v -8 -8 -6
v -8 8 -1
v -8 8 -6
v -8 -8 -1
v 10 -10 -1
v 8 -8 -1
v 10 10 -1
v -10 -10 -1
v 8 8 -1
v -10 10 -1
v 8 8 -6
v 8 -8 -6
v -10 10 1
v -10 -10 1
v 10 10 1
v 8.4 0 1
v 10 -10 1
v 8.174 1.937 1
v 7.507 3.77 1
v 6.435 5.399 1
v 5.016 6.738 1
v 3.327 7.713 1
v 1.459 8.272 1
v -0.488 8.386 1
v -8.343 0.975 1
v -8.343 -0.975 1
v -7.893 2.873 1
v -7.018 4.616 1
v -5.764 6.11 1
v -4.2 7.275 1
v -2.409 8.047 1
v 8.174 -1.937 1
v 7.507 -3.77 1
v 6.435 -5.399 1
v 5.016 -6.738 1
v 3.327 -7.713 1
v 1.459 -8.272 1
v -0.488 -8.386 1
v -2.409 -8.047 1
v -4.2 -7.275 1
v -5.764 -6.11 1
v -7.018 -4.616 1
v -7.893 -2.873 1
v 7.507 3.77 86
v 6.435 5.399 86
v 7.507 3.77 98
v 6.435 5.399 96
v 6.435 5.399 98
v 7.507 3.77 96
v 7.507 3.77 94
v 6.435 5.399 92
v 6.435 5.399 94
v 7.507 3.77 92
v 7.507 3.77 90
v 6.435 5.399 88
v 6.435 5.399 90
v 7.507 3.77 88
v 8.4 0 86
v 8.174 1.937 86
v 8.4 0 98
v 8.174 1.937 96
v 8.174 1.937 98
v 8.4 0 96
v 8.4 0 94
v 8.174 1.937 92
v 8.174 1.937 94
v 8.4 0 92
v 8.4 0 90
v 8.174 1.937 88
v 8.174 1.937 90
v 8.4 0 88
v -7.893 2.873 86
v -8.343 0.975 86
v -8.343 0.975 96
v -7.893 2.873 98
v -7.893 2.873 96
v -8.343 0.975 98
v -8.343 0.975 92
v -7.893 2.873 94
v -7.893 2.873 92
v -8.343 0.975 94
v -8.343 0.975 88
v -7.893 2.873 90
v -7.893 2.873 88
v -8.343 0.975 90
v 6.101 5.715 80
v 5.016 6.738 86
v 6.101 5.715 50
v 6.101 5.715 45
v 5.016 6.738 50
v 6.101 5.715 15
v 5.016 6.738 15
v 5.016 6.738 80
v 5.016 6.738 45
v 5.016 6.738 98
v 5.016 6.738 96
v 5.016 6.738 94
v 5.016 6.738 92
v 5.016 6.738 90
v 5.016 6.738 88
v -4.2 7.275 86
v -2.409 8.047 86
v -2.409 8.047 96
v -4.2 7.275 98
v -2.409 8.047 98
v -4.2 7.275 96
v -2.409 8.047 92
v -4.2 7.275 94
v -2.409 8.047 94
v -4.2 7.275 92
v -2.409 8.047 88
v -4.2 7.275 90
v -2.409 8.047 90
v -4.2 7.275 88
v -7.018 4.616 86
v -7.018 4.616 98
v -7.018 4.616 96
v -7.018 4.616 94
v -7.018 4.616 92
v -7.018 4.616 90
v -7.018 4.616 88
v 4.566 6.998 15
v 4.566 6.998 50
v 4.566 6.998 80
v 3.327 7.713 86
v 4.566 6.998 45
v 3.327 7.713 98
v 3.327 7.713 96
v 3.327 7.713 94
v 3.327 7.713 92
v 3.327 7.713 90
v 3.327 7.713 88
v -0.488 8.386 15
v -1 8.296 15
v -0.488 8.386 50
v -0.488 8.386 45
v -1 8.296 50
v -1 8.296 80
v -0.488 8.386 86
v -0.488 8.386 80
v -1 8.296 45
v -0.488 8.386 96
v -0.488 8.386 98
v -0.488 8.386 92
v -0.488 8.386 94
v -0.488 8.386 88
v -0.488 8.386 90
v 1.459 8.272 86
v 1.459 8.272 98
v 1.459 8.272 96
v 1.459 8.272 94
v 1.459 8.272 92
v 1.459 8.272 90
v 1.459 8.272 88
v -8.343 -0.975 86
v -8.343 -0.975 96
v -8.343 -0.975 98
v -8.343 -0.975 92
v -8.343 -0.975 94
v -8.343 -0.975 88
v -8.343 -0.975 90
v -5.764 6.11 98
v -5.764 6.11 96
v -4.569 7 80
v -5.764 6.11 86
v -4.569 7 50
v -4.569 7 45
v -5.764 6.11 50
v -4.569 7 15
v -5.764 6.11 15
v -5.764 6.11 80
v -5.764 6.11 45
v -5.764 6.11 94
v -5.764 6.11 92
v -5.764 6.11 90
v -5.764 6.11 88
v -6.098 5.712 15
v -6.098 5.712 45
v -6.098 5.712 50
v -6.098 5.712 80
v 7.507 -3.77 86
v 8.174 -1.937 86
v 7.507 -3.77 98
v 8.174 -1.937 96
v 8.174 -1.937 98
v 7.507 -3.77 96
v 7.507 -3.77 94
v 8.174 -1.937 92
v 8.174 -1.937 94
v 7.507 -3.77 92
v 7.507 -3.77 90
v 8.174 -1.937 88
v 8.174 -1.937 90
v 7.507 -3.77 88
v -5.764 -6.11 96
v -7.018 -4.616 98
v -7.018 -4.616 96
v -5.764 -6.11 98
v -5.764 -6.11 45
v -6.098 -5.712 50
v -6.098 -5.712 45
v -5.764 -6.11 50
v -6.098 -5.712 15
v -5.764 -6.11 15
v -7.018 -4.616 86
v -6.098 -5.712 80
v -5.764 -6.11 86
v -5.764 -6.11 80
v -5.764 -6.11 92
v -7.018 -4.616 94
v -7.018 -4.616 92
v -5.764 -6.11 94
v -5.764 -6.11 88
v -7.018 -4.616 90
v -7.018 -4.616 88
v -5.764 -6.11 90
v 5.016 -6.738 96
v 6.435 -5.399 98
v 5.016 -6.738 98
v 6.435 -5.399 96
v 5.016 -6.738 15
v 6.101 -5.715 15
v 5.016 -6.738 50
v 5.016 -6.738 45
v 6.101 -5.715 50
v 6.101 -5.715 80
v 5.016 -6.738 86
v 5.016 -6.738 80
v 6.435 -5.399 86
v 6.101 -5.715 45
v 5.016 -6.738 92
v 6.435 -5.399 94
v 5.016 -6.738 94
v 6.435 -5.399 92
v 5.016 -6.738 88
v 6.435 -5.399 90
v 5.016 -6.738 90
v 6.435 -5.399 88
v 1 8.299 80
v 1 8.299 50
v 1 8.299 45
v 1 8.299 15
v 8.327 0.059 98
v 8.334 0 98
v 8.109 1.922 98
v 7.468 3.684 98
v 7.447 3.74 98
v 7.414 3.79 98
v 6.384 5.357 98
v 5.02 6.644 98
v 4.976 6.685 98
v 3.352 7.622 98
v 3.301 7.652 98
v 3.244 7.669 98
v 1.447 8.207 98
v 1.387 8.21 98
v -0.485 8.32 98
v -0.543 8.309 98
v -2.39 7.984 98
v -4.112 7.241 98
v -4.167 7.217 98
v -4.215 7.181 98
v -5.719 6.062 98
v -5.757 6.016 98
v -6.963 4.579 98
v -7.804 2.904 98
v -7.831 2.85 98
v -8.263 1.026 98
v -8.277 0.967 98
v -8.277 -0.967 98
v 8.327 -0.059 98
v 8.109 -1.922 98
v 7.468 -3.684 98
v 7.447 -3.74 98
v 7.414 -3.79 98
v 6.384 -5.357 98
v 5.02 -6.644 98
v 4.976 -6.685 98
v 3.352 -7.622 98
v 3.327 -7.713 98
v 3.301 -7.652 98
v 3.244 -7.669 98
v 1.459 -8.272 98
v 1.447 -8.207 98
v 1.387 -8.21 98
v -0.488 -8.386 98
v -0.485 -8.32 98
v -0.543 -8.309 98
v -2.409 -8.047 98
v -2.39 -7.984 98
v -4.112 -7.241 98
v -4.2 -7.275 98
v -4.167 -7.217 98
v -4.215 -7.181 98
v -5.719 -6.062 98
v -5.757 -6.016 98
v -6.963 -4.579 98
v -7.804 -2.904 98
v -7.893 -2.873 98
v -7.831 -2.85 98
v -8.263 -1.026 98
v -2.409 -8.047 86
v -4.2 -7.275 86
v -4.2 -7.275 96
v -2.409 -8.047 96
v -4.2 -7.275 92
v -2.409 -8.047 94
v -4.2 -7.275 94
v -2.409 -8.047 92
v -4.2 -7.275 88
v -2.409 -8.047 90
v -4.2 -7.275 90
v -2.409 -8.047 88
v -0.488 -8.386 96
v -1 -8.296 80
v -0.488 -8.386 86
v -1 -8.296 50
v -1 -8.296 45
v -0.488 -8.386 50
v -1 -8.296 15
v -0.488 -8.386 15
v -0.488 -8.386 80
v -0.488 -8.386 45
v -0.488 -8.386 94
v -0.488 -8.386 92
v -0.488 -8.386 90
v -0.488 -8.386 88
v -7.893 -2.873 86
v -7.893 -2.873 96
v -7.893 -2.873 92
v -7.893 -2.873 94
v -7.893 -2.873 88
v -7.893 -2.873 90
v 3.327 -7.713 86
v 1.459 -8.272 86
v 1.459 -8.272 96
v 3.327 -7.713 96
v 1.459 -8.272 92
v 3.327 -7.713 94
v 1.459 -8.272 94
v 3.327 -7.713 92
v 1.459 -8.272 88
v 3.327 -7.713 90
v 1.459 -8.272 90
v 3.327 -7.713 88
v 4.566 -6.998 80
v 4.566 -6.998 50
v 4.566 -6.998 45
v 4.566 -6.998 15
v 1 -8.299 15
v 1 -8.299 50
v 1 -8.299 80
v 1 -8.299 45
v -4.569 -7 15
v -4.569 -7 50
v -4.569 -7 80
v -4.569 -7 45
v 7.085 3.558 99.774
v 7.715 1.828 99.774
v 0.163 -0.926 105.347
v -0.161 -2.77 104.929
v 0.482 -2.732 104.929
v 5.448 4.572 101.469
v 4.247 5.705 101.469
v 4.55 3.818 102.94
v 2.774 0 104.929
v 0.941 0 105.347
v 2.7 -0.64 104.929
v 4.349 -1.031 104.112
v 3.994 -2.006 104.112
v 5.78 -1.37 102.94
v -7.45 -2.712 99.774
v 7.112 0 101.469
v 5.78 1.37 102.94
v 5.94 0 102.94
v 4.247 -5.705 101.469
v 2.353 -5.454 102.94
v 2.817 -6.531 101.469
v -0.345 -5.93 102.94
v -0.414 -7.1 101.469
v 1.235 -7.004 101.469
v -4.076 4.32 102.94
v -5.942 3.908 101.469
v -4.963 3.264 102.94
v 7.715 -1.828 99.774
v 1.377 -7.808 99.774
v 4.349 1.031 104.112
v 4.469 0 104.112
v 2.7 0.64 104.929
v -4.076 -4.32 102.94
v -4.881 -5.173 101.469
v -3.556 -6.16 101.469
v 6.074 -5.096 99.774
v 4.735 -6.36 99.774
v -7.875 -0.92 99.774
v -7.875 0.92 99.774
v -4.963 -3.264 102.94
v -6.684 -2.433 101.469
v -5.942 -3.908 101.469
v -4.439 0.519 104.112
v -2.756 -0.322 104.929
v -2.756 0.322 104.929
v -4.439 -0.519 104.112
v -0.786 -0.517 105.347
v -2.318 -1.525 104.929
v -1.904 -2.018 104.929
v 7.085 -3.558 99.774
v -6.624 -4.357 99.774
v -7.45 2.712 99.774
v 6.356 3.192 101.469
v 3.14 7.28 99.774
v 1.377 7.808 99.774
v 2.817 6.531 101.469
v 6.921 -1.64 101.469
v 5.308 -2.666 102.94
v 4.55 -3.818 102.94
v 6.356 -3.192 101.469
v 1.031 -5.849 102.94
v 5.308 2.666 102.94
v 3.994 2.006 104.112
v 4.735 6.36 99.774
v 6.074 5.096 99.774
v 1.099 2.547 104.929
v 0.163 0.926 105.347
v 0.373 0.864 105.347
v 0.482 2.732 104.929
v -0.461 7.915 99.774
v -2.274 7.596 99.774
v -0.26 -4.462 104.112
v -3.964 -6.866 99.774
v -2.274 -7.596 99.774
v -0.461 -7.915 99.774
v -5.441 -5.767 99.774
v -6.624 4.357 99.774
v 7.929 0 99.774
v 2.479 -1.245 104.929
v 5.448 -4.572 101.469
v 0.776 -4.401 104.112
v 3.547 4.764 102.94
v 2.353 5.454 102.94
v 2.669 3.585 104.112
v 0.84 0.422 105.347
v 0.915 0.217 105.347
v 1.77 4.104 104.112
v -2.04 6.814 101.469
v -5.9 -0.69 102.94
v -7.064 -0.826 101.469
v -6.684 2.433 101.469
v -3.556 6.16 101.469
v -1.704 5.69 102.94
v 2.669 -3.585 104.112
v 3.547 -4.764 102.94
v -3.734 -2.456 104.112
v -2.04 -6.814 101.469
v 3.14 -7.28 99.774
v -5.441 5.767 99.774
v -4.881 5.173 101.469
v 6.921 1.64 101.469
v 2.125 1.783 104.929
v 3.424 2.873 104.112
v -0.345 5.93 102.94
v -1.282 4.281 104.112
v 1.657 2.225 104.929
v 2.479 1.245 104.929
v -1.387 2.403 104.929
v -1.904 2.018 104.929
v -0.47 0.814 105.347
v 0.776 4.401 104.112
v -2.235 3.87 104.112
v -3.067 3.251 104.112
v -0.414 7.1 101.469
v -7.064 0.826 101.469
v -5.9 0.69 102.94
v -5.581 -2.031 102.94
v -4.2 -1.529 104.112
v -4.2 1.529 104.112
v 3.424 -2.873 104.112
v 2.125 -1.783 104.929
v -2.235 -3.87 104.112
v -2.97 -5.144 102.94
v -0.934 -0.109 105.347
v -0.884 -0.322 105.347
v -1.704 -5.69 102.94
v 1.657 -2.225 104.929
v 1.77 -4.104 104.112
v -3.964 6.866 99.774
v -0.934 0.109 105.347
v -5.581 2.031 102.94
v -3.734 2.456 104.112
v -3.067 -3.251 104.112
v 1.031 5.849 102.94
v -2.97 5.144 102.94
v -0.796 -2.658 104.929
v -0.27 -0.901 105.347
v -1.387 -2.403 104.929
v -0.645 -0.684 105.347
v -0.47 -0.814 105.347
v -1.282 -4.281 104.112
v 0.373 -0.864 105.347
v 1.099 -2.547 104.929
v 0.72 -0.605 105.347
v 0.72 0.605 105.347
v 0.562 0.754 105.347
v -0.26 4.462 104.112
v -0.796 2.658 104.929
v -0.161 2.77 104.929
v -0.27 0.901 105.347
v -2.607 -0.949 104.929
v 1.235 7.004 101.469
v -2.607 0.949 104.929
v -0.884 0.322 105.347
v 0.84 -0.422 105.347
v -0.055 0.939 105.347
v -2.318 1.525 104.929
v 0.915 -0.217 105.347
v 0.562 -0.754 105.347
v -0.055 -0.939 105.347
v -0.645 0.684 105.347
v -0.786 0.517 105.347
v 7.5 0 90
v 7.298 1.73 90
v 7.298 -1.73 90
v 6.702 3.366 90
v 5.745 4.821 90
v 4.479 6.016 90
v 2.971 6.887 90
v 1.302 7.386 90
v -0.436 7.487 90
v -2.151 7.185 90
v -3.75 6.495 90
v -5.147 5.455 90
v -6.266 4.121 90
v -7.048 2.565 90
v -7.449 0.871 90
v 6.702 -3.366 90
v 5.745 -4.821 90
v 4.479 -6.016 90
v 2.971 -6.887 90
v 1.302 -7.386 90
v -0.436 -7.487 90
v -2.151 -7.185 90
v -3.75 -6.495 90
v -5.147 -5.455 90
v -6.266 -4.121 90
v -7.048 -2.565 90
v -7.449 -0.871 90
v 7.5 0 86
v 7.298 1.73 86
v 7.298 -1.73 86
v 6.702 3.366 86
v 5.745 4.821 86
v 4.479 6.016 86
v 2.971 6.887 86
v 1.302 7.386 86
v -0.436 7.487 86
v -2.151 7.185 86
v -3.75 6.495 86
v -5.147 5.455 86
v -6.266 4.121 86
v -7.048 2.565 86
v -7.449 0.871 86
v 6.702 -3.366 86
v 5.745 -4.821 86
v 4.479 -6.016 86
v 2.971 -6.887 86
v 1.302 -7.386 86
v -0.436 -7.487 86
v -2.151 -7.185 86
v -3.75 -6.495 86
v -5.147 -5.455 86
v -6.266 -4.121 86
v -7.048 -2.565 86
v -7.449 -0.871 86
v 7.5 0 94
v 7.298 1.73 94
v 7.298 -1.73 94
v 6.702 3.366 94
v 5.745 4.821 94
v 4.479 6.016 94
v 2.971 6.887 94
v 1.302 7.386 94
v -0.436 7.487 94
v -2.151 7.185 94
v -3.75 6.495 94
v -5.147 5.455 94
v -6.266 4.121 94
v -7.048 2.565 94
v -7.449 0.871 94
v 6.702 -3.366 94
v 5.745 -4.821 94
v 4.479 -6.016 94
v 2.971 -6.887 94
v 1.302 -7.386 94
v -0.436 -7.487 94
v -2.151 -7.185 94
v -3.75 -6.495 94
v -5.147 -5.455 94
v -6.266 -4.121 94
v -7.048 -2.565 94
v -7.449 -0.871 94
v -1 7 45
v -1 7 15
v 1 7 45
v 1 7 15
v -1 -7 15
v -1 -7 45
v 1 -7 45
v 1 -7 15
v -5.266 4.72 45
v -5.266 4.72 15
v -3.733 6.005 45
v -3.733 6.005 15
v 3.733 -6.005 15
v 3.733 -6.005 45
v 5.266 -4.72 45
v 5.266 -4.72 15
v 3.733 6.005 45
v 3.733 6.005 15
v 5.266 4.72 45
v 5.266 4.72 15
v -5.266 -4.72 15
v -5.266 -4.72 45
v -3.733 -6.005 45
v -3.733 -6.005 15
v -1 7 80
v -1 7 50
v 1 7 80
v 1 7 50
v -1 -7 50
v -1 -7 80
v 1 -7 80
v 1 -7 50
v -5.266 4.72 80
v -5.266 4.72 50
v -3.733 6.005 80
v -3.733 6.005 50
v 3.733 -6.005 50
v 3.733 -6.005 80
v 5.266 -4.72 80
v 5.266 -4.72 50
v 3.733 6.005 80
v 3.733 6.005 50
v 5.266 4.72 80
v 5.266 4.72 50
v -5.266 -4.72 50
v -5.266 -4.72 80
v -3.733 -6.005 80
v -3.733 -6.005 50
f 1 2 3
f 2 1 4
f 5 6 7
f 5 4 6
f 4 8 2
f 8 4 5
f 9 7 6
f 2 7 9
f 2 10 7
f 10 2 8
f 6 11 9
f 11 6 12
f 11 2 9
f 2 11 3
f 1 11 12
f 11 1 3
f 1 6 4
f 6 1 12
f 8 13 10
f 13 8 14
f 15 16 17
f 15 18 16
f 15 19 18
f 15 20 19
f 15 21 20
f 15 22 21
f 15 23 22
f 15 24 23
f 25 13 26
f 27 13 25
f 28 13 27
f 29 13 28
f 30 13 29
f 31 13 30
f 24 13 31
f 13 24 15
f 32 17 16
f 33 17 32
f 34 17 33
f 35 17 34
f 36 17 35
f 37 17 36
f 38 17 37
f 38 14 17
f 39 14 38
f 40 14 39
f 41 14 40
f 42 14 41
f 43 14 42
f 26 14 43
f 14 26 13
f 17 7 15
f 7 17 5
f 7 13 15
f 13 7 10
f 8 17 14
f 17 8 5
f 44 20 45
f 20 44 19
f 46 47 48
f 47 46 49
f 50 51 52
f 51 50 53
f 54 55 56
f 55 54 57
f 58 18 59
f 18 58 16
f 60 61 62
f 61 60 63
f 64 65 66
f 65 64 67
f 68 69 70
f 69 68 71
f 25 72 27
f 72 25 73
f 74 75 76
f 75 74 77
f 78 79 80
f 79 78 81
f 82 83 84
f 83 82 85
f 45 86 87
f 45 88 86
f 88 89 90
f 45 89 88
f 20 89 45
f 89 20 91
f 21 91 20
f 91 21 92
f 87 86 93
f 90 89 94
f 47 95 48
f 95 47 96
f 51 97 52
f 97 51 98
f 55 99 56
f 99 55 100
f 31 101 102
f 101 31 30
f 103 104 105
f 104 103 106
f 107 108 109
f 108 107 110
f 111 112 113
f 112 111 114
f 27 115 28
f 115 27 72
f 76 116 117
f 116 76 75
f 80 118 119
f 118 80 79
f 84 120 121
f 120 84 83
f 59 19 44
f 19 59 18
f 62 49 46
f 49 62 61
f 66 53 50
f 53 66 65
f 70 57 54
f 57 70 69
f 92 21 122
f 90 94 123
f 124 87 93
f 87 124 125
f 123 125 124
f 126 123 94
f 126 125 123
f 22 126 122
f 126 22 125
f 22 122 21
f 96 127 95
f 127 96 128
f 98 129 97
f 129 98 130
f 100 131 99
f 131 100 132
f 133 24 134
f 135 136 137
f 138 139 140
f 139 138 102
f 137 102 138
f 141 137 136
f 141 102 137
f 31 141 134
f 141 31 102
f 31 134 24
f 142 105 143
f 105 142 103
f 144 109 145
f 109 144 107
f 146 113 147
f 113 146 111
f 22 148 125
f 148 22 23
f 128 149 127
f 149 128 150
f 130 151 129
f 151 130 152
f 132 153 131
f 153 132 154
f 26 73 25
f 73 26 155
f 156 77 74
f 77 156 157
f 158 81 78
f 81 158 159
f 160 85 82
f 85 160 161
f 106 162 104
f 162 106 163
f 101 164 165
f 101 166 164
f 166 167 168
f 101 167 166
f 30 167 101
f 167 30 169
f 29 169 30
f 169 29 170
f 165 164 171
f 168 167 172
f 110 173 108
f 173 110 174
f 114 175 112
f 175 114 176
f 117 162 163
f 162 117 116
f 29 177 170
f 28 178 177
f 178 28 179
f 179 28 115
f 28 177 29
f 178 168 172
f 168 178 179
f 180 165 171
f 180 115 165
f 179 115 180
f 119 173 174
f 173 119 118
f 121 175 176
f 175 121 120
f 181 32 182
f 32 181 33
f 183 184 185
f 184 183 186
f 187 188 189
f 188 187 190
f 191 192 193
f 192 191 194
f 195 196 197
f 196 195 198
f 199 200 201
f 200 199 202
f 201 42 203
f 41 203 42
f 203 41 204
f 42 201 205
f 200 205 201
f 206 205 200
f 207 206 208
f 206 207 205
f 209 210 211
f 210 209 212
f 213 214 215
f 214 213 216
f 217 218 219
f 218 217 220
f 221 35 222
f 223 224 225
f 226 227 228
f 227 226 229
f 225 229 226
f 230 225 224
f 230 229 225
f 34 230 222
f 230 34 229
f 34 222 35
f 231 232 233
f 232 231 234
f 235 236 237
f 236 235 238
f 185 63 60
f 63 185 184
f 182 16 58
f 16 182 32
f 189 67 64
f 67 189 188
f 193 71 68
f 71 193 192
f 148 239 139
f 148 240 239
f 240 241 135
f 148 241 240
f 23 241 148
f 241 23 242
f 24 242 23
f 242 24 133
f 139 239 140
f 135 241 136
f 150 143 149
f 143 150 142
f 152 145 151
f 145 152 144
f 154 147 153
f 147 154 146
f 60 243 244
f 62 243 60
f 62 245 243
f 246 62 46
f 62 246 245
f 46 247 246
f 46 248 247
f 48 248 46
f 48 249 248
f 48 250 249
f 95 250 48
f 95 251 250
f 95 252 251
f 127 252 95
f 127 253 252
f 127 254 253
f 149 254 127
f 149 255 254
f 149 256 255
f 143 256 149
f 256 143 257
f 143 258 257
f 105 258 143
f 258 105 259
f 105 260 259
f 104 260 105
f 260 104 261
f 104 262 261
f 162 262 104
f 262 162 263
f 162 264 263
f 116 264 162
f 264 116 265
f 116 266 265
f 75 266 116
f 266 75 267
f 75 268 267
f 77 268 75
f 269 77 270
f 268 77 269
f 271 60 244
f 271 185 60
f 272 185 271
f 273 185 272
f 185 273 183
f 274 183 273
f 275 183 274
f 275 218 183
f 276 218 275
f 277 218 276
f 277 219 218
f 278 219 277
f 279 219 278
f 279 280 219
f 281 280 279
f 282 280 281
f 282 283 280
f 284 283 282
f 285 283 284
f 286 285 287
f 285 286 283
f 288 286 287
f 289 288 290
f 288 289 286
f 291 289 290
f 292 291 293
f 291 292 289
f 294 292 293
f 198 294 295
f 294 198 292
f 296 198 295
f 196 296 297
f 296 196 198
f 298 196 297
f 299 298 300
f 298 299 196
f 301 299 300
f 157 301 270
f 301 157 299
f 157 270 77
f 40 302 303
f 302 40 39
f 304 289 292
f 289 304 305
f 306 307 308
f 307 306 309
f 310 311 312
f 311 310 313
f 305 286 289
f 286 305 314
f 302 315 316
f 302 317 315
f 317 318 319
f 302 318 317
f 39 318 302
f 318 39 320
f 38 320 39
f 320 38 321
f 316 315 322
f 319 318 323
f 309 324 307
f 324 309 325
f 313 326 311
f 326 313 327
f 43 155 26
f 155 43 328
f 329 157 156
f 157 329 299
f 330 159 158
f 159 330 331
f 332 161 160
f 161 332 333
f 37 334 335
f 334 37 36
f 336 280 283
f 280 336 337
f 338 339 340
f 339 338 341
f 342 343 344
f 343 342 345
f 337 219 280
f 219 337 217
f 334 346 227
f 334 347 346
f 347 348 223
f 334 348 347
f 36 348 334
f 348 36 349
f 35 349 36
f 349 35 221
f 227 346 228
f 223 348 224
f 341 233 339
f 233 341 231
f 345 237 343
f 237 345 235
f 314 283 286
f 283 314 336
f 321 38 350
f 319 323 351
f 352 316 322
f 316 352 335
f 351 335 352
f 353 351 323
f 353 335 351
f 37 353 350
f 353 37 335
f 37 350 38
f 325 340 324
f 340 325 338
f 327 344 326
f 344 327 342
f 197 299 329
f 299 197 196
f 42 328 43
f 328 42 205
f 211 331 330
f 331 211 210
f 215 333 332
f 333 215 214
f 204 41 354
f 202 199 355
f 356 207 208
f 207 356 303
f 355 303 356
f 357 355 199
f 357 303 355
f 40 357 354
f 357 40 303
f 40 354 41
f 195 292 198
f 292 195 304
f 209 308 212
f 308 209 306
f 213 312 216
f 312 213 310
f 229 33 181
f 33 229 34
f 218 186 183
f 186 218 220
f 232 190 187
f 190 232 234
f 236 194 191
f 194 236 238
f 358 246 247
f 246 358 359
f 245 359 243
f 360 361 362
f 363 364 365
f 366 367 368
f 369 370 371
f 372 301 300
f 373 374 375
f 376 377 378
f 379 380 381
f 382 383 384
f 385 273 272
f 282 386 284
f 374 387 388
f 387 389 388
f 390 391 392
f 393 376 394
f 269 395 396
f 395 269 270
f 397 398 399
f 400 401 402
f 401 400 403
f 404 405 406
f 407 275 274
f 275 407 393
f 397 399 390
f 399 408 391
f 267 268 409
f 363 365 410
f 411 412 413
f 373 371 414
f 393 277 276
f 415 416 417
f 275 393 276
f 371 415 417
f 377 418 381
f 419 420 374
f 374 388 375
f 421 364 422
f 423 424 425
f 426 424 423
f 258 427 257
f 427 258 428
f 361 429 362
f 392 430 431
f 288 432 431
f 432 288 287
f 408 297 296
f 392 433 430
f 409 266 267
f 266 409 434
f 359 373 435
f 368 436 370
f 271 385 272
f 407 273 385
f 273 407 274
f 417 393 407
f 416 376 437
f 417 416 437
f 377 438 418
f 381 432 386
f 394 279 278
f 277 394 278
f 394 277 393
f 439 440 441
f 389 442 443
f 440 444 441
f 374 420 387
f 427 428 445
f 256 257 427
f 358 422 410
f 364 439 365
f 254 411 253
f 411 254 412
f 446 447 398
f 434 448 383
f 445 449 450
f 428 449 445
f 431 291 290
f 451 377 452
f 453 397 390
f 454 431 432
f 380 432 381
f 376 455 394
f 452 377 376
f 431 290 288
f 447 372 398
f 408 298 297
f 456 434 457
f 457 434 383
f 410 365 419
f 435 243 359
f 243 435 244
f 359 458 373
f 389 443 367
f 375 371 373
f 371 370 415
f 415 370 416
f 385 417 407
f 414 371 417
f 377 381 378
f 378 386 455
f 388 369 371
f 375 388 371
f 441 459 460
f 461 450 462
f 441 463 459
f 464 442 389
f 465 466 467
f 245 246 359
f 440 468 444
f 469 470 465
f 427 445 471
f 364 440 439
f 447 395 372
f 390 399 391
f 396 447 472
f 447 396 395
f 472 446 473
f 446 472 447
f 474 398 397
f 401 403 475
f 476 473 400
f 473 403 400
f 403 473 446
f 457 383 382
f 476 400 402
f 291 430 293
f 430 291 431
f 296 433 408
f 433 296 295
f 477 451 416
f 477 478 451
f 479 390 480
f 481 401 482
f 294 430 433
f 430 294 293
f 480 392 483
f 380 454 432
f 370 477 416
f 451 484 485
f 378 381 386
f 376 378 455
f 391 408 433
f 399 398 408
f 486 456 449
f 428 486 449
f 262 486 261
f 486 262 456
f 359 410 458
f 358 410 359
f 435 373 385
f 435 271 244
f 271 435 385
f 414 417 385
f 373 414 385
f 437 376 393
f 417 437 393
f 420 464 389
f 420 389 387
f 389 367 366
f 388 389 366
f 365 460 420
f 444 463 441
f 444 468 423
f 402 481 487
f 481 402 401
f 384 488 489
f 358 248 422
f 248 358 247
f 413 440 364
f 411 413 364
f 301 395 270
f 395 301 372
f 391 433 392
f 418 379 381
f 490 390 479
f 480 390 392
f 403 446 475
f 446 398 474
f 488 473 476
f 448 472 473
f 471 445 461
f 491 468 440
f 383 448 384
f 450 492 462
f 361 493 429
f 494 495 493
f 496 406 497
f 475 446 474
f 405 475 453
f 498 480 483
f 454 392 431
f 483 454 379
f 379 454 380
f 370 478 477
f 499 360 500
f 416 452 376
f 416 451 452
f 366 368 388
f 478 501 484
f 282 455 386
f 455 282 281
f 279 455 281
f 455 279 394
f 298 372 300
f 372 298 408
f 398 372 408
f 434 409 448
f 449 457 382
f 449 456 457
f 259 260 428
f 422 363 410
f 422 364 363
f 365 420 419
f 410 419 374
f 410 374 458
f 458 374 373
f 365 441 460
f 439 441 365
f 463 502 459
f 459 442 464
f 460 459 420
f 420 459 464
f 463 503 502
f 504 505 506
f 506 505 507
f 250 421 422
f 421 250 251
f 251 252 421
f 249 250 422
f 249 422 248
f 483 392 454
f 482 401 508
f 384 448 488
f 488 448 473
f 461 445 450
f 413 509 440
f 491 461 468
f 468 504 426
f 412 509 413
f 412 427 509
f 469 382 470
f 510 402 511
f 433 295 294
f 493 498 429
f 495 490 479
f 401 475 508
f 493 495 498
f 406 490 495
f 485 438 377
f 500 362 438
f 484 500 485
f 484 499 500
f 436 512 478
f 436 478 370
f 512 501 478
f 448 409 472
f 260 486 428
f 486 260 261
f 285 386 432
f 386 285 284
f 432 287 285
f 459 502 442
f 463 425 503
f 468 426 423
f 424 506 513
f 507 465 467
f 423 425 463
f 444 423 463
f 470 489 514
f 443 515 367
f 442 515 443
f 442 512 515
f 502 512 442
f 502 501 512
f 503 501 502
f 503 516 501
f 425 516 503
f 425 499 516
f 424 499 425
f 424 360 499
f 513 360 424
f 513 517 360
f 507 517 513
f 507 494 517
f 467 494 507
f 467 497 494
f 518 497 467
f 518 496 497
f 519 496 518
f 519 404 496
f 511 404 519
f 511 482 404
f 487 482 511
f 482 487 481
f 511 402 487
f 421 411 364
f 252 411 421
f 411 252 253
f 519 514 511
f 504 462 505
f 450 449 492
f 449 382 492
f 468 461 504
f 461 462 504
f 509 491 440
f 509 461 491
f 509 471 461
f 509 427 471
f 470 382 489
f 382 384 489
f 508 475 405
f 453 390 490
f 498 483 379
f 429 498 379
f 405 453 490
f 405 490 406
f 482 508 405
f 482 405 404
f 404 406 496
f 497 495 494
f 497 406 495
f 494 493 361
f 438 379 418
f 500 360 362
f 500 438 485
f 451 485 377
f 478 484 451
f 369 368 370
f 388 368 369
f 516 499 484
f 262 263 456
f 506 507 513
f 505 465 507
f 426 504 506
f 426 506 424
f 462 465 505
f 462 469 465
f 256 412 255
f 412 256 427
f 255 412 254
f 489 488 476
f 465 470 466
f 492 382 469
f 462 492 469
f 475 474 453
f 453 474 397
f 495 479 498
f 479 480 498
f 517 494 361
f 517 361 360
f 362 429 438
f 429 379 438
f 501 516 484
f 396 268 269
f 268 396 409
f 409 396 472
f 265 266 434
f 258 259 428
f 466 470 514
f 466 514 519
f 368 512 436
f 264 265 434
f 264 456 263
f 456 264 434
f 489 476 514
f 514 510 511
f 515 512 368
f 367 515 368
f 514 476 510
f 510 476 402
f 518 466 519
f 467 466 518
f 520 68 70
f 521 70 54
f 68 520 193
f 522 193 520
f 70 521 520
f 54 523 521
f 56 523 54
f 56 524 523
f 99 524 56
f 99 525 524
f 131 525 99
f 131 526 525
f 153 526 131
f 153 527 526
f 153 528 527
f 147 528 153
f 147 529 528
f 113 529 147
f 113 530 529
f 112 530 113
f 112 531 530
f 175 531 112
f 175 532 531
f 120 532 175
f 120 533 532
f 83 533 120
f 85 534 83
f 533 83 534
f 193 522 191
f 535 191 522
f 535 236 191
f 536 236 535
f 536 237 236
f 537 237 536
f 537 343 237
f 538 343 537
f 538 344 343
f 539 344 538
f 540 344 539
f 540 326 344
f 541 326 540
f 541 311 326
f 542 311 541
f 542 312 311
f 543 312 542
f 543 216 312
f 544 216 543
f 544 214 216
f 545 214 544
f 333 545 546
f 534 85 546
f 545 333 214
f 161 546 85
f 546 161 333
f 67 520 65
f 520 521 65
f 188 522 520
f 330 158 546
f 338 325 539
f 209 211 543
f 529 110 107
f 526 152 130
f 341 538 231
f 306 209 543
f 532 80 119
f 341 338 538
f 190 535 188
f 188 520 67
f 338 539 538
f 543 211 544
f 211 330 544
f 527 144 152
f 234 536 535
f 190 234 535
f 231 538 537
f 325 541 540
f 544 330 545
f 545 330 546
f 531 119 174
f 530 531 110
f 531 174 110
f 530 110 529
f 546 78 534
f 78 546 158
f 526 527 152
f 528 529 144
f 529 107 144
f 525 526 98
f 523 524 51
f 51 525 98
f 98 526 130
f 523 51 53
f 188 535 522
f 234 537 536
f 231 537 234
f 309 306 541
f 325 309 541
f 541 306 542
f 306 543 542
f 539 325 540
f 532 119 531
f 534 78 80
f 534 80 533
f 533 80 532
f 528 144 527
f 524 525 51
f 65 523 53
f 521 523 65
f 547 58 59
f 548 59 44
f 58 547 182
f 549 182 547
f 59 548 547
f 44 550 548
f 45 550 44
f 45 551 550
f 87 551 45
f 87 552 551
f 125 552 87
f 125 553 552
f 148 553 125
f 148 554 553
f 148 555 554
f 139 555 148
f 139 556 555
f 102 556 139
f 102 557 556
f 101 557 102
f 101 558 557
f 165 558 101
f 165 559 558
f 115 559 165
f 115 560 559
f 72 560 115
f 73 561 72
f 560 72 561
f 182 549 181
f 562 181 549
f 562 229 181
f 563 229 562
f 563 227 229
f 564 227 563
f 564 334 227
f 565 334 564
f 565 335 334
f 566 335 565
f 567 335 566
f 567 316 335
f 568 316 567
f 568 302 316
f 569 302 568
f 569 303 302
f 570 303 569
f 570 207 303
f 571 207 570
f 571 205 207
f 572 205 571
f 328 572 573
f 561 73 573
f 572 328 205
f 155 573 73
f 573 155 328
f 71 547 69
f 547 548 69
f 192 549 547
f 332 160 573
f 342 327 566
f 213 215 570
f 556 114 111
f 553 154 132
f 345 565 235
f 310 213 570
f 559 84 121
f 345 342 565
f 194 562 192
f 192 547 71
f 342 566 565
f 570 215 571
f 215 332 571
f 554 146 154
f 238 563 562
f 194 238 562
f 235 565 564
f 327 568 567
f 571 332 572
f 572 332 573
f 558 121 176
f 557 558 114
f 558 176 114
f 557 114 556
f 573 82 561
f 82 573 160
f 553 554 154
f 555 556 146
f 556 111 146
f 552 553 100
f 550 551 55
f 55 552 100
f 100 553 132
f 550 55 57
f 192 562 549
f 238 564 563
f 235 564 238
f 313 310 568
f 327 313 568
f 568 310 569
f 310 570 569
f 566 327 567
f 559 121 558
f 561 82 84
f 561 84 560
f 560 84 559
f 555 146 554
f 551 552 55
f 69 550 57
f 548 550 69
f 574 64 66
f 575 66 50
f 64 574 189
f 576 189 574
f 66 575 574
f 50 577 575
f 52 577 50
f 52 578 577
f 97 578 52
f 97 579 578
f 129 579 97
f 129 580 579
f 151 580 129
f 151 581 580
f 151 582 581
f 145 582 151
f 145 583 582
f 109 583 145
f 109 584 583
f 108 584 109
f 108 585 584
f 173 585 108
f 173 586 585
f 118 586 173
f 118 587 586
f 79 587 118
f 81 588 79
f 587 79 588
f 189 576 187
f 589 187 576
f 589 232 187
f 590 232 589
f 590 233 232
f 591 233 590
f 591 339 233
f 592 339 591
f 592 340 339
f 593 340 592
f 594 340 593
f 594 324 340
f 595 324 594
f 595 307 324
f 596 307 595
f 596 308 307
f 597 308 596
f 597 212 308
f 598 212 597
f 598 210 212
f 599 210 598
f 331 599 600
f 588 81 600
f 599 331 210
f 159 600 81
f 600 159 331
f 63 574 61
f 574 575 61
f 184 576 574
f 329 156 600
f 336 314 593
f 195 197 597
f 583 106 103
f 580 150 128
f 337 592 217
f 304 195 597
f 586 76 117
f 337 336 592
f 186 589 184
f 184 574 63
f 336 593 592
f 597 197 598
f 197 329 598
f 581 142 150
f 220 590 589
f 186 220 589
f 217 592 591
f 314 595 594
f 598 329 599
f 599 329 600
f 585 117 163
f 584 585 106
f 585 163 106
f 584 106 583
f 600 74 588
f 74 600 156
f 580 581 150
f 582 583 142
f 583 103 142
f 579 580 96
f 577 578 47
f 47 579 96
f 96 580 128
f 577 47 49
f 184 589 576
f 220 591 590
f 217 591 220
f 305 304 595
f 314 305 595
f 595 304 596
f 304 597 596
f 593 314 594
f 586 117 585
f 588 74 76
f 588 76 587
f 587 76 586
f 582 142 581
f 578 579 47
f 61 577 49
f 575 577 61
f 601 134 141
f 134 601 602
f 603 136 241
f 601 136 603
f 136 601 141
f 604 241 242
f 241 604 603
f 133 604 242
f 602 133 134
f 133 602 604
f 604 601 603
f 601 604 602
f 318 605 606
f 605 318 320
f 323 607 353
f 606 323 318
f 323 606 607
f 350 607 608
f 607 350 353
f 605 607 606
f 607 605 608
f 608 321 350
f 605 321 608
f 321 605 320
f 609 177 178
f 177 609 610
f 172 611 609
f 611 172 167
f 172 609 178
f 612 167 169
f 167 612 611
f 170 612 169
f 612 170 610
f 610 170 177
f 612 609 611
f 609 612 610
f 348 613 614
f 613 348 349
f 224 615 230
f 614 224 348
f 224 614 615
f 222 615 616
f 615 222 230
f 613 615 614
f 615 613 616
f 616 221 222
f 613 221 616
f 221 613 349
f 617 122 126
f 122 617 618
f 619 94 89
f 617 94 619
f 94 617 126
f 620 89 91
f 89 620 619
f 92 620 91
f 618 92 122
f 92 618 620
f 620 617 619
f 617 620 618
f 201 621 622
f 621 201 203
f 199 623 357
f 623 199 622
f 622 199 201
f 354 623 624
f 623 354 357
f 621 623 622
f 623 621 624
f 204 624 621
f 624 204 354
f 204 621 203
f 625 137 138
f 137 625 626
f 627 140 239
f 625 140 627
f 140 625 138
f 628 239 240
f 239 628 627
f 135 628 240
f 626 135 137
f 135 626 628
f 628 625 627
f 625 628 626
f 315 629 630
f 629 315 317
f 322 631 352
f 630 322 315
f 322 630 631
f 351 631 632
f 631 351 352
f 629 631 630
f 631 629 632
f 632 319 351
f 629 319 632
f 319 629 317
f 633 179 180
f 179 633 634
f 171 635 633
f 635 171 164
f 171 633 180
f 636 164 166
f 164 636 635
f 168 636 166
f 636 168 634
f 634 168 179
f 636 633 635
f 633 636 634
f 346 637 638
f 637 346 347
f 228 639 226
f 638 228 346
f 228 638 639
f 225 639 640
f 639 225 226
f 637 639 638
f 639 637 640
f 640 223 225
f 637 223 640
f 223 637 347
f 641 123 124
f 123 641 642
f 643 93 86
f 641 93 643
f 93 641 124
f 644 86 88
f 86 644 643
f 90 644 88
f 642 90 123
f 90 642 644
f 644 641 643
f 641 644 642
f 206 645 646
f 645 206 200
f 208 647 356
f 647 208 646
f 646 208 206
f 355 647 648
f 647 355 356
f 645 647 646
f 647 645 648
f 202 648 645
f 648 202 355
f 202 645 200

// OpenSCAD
//MH-Z16 Intelligent Infrared Gas Module https://github.com/Arduinolibrary/DFRobot_Gravity_UART_Infrared_CO2_Sensor/raw/master/MH-Z16%20CO2%20Datasheet.pdf

// Note: Is more like slotting to the side...
//https://www.google.com/search?q=MH-Z16&safe=off&rlz=1C5CHFA_enAU750AU750&source=lnms&tbm=isch&sa=X&ved=0ahUKEwjUmJXZqdvjAhUZSo8KHTWYB64Q_AUIESgB#imgrc=dEoMSrVowFoMMM:

difference()
{
    union()
    {
        translate([0,0,-5/2-1])
            cube([16,16,5],center=true);
        translate([0,0,0])
            cube([20,20,2],center=true);
        translate([0,0,1])
            cylinder(r=16.8/2,97);
        translate([0,0,97])
            sphere(r=16.8/2);
    }
    
    translate([0,0,90])
    difference()
    {
        cylinder(r1=30/2,r2=30/2,2);
        cylinder(r1=15/2,r2=16.8/2,2);
    }
    translate([0,0,90-4])
    difference()
    {
        cylinder(r1=30/2,r2=30/2,2);
        cylinder(r1=15/2,r2=16.8/2,2);
    }
    translate([0,0,90+4])
    difference()
    {
        cylinder(r1=30/2,r2=30/2,2);
        cylinder(r1=15/2,r2=16.8/2,2);
    }

    
    translate([0,0,30])
    union()
    {
        rotate([0,0,0])
        union()
        {
            translate([0,15,0])
                cube([2,16,30],center=true);
            translate([0,-15,0])
                cube([2,16,30],center=true);
        }
       
        rotate([0,0,40])
        union()
        {
            translate([0,15,0])
                cube([2,16,30],center=true);
            translate([0,-15,0])
                cube([2,16,30],center=true);
        }
        
        rotate([0,0,-40])
        union()
        {
            translate([0,15,0])
                cube([2,16,30],center=true);
            translate([0,-15,0])
                cube([2,16,30],center=true);
        }
    }
    translate([0,0,70-5])
    union()
    {
        rotate([0,0,0])
        union()
        {
            translate([0,15,0])
                cube([2,16,30],center=true);
            translate([0,-15,0])
                cube([2,16,30],center=true);
        }
       
        rotate([0,0,40])
        union()
        {
            translate([0,15,0])
                cube([2,16,30],center=true);
            translate([0,-15,0])
                cube([2,16,30],center=true);
        }
        
        rotate([0,0,-40])
        union()
        {
            translate([0,15,0])
                cube([2,16,30],center=true);
            translate([0,-15,0])
                cube([2,16,30],center=true);
        }
    }
}
